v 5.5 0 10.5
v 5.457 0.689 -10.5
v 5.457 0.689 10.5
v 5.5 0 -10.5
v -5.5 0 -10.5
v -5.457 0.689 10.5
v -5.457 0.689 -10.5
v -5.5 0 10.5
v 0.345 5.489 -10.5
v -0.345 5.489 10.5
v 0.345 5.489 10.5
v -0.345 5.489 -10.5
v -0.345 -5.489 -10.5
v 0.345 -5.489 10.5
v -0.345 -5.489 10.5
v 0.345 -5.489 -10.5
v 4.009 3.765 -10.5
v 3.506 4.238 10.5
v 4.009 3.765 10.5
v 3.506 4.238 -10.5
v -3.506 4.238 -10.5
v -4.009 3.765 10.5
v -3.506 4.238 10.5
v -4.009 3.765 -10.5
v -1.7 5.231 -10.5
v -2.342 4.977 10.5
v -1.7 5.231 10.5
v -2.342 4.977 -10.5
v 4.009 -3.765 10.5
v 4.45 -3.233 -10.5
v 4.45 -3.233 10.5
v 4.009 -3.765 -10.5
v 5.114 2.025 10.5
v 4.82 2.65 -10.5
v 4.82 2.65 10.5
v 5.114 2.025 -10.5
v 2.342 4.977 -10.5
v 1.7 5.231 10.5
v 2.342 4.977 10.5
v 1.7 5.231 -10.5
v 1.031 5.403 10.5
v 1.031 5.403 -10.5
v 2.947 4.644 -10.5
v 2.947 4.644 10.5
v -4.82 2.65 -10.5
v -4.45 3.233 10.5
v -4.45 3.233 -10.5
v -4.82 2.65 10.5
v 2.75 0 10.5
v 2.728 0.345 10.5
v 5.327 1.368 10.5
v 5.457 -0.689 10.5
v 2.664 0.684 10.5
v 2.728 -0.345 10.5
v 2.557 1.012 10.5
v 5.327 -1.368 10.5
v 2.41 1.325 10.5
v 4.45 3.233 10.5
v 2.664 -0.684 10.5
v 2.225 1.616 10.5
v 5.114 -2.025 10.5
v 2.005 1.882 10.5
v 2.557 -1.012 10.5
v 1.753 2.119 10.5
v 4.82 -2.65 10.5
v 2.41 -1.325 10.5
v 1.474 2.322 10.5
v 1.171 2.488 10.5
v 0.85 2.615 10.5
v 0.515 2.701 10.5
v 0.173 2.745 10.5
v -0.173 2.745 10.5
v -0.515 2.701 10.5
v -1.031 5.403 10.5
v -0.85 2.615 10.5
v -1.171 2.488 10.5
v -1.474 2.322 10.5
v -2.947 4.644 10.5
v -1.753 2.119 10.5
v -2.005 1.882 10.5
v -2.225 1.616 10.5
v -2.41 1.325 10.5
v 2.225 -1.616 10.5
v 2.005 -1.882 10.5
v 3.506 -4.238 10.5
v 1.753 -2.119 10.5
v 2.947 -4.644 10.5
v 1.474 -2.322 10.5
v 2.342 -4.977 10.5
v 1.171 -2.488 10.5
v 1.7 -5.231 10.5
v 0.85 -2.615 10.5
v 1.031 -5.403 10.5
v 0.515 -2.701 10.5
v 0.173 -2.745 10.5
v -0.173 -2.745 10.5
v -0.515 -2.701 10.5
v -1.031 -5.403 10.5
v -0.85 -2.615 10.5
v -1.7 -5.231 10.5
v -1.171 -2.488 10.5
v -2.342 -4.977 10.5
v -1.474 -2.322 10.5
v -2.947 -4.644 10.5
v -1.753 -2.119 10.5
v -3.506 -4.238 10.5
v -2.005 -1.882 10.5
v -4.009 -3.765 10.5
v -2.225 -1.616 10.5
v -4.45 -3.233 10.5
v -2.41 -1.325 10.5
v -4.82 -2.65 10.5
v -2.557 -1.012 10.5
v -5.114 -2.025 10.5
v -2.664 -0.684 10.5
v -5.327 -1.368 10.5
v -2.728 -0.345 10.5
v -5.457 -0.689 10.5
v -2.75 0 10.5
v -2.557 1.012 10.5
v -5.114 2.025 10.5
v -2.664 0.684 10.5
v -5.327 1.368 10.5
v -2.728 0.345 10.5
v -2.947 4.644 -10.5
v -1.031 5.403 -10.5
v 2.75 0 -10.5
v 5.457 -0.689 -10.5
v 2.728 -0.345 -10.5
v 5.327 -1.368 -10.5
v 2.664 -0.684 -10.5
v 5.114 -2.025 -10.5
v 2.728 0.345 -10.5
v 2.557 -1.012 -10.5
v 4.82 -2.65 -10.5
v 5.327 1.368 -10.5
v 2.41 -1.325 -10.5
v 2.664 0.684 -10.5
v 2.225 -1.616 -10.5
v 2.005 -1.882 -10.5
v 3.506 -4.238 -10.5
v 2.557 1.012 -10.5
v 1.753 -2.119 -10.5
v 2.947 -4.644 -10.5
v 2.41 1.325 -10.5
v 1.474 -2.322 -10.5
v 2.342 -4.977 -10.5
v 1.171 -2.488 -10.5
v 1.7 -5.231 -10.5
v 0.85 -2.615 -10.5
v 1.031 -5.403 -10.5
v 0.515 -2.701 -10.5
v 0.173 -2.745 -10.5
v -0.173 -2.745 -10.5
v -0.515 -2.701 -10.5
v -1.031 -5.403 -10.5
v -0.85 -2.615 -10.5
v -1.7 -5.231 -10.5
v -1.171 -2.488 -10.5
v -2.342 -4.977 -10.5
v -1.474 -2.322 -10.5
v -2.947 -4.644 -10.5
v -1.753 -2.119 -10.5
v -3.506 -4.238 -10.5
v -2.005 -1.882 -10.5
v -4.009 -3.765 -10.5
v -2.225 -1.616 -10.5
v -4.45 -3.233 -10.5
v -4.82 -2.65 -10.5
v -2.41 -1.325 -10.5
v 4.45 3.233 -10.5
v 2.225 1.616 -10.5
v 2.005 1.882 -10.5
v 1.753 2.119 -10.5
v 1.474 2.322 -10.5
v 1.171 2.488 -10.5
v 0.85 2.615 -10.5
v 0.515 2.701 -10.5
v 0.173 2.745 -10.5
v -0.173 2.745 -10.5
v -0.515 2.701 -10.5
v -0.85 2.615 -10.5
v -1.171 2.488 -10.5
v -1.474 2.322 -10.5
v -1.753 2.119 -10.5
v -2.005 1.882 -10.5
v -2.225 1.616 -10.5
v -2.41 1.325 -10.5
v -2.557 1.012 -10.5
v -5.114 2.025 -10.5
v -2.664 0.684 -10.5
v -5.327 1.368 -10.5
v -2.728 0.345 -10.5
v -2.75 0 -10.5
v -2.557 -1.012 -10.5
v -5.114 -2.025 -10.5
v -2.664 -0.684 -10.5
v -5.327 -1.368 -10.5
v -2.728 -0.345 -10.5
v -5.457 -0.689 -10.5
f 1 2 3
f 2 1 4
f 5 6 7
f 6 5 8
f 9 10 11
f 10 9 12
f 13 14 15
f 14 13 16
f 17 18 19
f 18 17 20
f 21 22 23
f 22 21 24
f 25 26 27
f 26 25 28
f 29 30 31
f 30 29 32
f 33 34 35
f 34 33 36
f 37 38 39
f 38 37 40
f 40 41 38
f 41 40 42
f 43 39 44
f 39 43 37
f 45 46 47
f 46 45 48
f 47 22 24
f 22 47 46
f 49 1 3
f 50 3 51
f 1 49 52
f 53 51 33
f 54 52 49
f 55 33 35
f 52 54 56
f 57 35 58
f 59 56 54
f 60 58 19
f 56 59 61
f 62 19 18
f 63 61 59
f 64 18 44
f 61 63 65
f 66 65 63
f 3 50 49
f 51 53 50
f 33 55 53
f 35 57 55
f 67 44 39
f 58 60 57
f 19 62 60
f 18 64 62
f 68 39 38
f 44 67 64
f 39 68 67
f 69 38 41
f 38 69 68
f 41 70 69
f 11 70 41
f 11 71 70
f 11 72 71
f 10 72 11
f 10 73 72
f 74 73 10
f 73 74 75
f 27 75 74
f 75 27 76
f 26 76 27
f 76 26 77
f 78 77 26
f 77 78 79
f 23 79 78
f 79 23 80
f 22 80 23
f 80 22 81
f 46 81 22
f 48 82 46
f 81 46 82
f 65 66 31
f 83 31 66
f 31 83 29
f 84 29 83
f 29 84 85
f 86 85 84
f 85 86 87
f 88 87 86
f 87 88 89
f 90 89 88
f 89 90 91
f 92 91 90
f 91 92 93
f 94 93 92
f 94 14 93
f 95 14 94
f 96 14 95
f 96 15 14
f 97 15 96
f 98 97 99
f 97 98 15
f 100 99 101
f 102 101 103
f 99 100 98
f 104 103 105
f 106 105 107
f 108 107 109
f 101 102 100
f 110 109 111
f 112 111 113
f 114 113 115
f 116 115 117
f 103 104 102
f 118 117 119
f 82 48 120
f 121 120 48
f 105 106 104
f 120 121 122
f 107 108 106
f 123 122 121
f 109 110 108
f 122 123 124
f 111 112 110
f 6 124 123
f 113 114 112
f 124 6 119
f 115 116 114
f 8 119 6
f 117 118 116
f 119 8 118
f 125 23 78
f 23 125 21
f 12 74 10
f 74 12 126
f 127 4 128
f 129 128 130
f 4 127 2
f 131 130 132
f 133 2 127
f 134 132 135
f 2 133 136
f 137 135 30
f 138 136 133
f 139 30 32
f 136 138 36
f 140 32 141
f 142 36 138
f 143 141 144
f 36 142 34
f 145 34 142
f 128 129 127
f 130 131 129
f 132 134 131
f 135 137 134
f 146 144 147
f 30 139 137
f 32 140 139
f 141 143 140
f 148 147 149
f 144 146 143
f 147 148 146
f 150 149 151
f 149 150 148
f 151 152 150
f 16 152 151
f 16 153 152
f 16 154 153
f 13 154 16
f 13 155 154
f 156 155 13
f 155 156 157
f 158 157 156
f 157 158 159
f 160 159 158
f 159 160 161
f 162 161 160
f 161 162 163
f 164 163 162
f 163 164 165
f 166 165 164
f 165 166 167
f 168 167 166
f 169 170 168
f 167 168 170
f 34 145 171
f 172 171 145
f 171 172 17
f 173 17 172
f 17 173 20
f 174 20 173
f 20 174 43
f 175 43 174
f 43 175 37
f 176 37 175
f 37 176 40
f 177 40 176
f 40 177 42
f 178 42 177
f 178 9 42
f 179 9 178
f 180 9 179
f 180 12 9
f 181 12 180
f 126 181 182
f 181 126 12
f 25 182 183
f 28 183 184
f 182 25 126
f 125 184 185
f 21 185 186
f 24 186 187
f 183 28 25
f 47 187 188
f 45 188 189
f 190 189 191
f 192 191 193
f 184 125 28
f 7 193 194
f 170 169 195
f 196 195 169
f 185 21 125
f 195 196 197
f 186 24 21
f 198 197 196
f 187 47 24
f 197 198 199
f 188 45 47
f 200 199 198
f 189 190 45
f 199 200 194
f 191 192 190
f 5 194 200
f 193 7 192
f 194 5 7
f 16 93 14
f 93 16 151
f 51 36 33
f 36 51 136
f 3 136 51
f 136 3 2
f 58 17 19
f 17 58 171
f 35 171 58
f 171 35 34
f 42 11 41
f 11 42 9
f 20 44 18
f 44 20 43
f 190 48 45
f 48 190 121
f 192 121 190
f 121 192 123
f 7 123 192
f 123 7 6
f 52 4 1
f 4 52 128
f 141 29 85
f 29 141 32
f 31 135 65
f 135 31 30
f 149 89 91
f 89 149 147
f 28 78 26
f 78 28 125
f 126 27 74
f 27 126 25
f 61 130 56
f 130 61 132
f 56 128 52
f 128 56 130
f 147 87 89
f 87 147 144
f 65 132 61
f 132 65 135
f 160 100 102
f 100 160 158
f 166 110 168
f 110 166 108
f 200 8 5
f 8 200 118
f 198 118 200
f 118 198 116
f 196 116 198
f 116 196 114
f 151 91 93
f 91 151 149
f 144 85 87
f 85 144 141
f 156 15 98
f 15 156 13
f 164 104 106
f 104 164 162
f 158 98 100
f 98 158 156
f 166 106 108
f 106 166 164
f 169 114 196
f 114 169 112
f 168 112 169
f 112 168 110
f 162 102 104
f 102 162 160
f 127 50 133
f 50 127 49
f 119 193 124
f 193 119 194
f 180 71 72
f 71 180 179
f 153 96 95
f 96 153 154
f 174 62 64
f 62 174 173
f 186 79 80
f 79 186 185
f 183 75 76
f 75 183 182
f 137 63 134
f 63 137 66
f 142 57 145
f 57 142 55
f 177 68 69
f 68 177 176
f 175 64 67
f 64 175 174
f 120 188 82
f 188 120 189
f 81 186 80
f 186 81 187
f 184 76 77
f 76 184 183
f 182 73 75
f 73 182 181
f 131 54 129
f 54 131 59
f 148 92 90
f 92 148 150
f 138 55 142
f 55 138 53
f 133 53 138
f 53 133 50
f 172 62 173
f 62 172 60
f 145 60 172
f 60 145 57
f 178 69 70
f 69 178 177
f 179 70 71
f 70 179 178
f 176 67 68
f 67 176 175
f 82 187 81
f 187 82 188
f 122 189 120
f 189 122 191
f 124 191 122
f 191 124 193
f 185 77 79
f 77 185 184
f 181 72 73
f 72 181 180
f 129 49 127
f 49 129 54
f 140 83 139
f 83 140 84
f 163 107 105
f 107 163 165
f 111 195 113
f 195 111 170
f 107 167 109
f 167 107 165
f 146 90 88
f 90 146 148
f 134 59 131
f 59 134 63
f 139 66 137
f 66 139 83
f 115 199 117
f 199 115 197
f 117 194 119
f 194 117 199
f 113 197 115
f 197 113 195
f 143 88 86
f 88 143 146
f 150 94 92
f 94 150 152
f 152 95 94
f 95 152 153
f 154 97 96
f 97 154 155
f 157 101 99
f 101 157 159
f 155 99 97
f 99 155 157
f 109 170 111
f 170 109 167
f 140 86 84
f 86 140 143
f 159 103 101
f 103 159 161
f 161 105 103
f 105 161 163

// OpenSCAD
$fn = 50;


difference() {
	union() {
		translate(v = [0, 0, -10.5000000000]) {
			cylinder(h = 21, r = 5.5000000000);
		}
	}
	union() {
		translate(v = [0, 0, -100.0000000000]) {
			cylinder(h = 200, r = 2.7500000000);
		}
	}
}
